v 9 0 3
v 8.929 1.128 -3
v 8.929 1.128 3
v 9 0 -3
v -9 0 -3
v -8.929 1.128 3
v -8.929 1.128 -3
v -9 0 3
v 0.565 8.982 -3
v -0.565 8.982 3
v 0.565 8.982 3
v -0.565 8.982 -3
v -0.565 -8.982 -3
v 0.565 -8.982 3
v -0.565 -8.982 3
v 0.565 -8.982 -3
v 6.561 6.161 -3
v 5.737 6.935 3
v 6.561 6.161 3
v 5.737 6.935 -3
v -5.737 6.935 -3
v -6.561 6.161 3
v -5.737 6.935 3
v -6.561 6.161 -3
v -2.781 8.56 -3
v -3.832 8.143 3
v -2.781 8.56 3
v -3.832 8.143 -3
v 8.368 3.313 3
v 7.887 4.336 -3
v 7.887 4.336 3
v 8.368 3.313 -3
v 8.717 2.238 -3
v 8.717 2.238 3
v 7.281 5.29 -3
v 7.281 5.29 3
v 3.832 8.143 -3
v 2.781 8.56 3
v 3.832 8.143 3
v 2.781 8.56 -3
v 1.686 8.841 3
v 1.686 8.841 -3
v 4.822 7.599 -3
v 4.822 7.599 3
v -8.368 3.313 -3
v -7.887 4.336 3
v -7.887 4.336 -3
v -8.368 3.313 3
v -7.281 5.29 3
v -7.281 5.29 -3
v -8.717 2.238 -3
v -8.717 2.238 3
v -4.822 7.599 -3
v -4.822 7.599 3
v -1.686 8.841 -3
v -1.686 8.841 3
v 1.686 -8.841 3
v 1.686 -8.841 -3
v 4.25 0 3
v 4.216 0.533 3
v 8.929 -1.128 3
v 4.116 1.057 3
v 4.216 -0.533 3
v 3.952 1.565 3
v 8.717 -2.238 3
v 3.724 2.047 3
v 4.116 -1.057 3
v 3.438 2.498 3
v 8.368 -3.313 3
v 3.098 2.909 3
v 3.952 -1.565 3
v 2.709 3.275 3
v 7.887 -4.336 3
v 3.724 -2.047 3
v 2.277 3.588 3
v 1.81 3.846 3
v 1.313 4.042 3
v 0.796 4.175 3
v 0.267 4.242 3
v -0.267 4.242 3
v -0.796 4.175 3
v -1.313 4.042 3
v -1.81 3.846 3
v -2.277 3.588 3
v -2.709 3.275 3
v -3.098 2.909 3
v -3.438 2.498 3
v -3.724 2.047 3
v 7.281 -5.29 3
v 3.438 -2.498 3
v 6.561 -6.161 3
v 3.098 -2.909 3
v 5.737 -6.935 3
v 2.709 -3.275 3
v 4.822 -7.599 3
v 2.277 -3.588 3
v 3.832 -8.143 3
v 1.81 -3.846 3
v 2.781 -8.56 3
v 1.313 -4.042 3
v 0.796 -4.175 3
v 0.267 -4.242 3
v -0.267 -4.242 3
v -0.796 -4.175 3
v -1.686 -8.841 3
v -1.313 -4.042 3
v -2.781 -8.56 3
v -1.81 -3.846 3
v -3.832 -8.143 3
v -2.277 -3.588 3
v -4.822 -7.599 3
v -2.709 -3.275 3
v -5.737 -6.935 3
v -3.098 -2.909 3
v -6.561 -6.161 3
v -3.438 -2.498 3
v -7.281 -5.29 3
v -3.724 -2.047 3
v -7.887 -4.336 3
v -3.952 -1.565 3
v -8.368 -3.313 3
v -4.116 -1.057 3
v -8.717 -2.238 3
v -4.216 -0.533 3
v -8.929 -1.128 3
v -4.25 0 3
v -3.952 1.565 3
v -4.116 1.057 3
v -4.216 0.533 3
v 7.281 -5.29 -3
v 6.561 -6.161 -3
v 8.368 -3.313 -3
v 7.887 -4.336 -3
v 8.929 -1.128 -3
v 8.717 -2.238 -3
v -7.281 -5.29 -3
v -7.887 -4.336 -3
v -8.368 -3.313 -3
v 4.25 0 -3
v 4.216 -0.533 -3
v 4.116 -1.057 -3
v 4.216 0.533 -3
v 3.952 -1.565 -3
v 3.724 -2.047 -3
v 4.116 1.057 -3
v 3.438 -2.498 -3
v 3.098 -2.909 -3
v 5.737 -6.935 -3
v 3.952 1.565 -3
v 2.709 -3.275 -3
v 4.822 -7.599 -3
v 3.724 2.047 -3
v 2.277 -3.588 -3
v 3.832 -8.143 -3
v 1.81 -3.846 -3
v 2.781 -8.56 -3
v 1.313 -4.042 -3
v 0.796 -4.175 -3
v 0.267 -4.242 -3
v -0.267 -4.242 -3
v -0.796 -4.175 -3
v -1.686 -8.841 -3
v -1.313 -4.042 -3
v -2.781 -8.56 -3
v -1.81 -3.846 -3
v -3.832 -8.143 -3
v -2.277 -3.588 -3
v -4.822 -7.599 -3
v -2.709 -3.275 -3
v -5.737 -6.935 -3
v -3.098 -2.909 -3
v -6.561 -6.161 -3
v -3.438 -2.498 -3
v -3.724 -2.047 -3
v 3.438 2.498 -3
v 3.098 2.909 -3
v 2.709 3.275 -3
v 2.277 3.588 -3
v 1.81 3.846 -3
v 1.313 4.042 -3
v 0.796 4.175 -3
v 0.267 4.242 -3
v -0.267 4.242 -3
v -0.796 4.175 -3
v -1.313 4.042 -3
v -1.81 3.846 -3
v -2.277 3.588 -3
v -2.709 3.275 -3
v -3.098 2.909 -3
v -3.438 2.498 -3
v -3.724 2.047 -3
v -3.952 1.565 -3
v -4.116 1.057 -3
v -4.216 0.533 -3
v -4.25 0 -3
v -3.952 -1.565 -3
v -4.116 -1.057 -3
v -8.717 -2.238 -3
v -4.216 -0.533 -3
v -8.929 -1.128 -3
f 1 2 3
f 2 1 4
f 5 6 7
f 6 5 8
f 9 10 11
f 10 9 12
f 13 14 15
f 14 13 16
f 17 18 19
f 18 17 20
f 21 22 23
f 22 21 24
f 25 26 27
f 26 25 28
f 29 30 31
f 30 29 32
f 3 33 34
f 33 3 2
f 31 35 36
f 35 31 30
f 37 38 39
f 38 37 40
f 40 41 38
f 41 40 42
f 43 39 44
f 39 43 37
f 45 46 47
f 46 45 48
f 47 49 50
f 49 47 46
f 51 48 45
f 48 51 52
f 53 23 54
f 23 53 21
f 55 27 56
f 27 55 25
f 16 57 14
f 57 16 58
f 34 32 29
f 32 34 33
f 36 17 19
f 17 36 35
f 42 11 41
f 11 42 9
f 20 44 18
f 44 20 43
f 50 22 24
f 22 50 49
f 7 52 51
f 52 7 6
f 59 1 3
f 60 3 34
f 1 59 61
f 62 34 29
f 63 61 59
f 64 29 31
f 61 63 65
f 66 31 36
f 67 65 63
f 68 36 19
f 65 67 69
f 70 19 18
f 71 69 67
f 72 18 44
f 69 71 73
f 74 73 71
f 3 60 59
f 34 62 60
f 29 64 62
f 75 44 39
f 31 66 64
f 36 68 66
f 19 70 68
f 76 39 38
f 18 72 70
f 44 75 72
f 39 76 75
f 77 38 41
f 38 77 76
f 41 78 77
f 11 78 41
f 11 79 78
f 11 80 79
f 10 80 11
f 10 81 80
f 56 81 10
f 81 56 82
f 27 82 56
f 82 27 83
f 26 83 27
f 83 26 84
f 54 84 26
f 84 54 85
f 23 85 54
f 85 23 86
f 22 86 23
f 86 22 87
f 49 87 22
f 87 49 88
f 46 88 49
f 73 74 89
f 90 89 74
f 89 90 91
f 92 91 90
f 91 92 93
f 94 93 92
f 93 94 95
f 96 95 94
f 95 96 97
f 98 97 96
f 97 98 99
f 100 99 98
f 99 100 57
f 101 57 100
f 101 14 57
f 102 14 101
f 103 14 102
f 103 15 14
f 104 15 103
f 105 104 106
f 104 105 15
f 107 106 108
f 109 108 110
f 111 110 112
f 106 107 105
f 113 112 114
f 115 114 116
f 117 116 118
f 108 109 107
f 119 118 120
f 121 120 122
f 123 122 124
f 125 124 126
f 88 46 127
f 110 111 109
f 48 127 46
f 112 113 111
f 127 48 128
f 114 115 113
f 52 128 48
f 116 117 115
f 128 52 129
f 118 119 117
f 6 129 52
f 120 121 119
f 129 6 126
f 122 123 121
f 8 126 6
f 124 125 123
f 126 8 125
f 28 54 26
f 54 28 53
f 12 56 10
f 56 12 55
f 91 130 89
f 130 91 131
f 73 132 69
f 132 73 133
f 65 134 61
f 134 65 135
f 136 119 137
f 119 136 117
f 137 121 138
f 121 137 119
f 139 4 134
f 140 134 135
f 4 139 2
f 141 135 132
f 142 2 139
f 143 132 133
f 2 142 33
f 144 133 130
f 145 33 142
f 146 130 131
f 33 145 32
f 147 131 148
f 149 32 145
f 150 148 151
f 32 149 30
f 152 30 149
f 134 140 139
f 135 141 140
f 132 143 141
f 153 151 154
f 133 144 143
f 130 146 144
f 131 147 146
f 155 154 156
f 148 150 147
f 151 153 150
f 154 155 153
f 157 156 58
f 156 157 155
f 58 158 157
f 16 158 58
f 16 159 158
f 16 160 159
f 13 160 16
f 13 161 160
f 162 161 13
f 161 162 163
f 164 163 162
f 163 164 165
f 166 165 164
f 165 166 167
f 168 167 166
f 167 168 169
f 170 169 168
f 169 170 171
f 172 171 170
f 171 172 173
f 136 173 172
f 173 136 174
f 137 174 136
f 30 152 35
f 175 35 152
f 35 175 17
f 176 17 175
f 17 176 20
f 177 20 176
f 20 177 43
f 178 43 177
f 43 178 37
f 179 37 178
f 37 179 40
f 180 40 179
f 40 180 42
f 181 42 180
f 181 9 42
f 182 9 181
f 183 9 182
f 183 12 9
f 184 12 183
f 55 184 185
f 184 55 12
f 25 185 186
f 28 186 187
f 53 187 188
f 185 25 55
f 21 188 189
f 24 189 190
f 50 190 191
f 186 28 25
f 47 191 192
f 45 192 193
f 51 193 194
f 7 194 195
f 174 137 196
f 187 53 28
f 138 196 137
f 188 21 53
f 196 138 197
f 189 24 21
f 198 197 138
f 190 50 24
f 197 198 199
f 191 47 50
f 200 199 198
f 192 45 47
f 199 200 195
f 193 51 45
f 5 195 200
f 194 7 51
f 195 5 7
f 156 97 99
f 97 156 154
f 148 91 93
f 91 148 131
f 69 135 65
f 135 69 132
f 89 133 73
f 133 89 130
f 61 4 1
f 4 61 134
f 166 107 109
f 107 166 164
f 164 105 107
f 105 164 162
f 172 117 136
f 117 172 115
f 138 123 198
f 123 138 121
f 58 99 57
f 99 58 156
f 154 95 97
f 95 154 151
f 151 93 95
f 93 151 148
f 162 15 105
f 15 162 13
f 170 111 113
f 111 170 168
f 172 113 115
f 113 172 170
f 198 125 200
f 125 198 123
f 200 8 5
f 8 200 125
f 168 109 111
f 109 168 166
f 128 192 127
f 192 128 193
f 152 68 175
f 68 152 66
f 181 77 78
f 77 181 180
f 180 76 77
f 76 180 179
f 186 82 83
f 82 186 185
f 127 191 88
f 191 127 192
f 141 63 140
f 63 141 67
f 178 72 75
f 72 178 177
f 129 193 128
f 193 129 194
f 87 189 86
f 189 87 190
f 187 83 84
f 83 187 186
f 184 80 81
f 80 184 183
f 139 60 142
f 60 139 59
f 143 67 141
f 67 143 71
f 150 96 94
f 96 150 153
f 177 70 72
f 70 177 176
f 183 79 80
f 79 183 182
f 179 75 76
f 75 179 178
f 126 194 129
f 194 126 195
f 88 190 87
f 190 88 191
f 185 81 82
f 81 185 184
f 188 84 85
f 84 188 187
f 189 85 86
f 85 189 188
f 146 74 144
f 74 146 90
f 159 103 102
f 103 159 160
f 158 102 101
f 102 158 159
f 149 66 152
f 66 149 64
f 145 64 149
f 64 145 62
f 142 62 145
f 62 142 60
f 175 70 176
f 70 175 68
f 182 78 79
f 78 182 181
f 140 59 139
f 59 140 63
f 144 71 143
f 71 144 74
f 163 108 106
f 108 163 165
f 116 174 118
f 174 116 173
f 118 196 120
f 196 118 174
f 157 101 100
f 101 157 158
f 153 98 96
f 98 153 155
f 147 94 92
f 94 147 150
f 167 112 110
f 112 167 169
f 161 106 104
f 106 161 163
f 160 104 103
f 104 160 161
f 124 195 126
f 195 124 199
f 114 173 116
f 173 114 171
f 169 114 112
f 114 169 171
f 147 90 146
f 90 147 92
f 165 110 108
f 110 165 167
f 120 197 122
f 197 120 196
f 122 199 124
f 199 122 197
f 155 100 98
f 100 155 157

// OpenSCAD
$fn = 50;


difference() {
	union() {
		translate(v = [0, 0, -3.0000000000]) {
			cylinder(h = 6, r = 9.0000000000);
		}
	}
	union() {
		translate(v = [0, 0, -100.0000000000]) {
			cylinder(h = 200, r = 4.2500000000);
		}
	}
}
